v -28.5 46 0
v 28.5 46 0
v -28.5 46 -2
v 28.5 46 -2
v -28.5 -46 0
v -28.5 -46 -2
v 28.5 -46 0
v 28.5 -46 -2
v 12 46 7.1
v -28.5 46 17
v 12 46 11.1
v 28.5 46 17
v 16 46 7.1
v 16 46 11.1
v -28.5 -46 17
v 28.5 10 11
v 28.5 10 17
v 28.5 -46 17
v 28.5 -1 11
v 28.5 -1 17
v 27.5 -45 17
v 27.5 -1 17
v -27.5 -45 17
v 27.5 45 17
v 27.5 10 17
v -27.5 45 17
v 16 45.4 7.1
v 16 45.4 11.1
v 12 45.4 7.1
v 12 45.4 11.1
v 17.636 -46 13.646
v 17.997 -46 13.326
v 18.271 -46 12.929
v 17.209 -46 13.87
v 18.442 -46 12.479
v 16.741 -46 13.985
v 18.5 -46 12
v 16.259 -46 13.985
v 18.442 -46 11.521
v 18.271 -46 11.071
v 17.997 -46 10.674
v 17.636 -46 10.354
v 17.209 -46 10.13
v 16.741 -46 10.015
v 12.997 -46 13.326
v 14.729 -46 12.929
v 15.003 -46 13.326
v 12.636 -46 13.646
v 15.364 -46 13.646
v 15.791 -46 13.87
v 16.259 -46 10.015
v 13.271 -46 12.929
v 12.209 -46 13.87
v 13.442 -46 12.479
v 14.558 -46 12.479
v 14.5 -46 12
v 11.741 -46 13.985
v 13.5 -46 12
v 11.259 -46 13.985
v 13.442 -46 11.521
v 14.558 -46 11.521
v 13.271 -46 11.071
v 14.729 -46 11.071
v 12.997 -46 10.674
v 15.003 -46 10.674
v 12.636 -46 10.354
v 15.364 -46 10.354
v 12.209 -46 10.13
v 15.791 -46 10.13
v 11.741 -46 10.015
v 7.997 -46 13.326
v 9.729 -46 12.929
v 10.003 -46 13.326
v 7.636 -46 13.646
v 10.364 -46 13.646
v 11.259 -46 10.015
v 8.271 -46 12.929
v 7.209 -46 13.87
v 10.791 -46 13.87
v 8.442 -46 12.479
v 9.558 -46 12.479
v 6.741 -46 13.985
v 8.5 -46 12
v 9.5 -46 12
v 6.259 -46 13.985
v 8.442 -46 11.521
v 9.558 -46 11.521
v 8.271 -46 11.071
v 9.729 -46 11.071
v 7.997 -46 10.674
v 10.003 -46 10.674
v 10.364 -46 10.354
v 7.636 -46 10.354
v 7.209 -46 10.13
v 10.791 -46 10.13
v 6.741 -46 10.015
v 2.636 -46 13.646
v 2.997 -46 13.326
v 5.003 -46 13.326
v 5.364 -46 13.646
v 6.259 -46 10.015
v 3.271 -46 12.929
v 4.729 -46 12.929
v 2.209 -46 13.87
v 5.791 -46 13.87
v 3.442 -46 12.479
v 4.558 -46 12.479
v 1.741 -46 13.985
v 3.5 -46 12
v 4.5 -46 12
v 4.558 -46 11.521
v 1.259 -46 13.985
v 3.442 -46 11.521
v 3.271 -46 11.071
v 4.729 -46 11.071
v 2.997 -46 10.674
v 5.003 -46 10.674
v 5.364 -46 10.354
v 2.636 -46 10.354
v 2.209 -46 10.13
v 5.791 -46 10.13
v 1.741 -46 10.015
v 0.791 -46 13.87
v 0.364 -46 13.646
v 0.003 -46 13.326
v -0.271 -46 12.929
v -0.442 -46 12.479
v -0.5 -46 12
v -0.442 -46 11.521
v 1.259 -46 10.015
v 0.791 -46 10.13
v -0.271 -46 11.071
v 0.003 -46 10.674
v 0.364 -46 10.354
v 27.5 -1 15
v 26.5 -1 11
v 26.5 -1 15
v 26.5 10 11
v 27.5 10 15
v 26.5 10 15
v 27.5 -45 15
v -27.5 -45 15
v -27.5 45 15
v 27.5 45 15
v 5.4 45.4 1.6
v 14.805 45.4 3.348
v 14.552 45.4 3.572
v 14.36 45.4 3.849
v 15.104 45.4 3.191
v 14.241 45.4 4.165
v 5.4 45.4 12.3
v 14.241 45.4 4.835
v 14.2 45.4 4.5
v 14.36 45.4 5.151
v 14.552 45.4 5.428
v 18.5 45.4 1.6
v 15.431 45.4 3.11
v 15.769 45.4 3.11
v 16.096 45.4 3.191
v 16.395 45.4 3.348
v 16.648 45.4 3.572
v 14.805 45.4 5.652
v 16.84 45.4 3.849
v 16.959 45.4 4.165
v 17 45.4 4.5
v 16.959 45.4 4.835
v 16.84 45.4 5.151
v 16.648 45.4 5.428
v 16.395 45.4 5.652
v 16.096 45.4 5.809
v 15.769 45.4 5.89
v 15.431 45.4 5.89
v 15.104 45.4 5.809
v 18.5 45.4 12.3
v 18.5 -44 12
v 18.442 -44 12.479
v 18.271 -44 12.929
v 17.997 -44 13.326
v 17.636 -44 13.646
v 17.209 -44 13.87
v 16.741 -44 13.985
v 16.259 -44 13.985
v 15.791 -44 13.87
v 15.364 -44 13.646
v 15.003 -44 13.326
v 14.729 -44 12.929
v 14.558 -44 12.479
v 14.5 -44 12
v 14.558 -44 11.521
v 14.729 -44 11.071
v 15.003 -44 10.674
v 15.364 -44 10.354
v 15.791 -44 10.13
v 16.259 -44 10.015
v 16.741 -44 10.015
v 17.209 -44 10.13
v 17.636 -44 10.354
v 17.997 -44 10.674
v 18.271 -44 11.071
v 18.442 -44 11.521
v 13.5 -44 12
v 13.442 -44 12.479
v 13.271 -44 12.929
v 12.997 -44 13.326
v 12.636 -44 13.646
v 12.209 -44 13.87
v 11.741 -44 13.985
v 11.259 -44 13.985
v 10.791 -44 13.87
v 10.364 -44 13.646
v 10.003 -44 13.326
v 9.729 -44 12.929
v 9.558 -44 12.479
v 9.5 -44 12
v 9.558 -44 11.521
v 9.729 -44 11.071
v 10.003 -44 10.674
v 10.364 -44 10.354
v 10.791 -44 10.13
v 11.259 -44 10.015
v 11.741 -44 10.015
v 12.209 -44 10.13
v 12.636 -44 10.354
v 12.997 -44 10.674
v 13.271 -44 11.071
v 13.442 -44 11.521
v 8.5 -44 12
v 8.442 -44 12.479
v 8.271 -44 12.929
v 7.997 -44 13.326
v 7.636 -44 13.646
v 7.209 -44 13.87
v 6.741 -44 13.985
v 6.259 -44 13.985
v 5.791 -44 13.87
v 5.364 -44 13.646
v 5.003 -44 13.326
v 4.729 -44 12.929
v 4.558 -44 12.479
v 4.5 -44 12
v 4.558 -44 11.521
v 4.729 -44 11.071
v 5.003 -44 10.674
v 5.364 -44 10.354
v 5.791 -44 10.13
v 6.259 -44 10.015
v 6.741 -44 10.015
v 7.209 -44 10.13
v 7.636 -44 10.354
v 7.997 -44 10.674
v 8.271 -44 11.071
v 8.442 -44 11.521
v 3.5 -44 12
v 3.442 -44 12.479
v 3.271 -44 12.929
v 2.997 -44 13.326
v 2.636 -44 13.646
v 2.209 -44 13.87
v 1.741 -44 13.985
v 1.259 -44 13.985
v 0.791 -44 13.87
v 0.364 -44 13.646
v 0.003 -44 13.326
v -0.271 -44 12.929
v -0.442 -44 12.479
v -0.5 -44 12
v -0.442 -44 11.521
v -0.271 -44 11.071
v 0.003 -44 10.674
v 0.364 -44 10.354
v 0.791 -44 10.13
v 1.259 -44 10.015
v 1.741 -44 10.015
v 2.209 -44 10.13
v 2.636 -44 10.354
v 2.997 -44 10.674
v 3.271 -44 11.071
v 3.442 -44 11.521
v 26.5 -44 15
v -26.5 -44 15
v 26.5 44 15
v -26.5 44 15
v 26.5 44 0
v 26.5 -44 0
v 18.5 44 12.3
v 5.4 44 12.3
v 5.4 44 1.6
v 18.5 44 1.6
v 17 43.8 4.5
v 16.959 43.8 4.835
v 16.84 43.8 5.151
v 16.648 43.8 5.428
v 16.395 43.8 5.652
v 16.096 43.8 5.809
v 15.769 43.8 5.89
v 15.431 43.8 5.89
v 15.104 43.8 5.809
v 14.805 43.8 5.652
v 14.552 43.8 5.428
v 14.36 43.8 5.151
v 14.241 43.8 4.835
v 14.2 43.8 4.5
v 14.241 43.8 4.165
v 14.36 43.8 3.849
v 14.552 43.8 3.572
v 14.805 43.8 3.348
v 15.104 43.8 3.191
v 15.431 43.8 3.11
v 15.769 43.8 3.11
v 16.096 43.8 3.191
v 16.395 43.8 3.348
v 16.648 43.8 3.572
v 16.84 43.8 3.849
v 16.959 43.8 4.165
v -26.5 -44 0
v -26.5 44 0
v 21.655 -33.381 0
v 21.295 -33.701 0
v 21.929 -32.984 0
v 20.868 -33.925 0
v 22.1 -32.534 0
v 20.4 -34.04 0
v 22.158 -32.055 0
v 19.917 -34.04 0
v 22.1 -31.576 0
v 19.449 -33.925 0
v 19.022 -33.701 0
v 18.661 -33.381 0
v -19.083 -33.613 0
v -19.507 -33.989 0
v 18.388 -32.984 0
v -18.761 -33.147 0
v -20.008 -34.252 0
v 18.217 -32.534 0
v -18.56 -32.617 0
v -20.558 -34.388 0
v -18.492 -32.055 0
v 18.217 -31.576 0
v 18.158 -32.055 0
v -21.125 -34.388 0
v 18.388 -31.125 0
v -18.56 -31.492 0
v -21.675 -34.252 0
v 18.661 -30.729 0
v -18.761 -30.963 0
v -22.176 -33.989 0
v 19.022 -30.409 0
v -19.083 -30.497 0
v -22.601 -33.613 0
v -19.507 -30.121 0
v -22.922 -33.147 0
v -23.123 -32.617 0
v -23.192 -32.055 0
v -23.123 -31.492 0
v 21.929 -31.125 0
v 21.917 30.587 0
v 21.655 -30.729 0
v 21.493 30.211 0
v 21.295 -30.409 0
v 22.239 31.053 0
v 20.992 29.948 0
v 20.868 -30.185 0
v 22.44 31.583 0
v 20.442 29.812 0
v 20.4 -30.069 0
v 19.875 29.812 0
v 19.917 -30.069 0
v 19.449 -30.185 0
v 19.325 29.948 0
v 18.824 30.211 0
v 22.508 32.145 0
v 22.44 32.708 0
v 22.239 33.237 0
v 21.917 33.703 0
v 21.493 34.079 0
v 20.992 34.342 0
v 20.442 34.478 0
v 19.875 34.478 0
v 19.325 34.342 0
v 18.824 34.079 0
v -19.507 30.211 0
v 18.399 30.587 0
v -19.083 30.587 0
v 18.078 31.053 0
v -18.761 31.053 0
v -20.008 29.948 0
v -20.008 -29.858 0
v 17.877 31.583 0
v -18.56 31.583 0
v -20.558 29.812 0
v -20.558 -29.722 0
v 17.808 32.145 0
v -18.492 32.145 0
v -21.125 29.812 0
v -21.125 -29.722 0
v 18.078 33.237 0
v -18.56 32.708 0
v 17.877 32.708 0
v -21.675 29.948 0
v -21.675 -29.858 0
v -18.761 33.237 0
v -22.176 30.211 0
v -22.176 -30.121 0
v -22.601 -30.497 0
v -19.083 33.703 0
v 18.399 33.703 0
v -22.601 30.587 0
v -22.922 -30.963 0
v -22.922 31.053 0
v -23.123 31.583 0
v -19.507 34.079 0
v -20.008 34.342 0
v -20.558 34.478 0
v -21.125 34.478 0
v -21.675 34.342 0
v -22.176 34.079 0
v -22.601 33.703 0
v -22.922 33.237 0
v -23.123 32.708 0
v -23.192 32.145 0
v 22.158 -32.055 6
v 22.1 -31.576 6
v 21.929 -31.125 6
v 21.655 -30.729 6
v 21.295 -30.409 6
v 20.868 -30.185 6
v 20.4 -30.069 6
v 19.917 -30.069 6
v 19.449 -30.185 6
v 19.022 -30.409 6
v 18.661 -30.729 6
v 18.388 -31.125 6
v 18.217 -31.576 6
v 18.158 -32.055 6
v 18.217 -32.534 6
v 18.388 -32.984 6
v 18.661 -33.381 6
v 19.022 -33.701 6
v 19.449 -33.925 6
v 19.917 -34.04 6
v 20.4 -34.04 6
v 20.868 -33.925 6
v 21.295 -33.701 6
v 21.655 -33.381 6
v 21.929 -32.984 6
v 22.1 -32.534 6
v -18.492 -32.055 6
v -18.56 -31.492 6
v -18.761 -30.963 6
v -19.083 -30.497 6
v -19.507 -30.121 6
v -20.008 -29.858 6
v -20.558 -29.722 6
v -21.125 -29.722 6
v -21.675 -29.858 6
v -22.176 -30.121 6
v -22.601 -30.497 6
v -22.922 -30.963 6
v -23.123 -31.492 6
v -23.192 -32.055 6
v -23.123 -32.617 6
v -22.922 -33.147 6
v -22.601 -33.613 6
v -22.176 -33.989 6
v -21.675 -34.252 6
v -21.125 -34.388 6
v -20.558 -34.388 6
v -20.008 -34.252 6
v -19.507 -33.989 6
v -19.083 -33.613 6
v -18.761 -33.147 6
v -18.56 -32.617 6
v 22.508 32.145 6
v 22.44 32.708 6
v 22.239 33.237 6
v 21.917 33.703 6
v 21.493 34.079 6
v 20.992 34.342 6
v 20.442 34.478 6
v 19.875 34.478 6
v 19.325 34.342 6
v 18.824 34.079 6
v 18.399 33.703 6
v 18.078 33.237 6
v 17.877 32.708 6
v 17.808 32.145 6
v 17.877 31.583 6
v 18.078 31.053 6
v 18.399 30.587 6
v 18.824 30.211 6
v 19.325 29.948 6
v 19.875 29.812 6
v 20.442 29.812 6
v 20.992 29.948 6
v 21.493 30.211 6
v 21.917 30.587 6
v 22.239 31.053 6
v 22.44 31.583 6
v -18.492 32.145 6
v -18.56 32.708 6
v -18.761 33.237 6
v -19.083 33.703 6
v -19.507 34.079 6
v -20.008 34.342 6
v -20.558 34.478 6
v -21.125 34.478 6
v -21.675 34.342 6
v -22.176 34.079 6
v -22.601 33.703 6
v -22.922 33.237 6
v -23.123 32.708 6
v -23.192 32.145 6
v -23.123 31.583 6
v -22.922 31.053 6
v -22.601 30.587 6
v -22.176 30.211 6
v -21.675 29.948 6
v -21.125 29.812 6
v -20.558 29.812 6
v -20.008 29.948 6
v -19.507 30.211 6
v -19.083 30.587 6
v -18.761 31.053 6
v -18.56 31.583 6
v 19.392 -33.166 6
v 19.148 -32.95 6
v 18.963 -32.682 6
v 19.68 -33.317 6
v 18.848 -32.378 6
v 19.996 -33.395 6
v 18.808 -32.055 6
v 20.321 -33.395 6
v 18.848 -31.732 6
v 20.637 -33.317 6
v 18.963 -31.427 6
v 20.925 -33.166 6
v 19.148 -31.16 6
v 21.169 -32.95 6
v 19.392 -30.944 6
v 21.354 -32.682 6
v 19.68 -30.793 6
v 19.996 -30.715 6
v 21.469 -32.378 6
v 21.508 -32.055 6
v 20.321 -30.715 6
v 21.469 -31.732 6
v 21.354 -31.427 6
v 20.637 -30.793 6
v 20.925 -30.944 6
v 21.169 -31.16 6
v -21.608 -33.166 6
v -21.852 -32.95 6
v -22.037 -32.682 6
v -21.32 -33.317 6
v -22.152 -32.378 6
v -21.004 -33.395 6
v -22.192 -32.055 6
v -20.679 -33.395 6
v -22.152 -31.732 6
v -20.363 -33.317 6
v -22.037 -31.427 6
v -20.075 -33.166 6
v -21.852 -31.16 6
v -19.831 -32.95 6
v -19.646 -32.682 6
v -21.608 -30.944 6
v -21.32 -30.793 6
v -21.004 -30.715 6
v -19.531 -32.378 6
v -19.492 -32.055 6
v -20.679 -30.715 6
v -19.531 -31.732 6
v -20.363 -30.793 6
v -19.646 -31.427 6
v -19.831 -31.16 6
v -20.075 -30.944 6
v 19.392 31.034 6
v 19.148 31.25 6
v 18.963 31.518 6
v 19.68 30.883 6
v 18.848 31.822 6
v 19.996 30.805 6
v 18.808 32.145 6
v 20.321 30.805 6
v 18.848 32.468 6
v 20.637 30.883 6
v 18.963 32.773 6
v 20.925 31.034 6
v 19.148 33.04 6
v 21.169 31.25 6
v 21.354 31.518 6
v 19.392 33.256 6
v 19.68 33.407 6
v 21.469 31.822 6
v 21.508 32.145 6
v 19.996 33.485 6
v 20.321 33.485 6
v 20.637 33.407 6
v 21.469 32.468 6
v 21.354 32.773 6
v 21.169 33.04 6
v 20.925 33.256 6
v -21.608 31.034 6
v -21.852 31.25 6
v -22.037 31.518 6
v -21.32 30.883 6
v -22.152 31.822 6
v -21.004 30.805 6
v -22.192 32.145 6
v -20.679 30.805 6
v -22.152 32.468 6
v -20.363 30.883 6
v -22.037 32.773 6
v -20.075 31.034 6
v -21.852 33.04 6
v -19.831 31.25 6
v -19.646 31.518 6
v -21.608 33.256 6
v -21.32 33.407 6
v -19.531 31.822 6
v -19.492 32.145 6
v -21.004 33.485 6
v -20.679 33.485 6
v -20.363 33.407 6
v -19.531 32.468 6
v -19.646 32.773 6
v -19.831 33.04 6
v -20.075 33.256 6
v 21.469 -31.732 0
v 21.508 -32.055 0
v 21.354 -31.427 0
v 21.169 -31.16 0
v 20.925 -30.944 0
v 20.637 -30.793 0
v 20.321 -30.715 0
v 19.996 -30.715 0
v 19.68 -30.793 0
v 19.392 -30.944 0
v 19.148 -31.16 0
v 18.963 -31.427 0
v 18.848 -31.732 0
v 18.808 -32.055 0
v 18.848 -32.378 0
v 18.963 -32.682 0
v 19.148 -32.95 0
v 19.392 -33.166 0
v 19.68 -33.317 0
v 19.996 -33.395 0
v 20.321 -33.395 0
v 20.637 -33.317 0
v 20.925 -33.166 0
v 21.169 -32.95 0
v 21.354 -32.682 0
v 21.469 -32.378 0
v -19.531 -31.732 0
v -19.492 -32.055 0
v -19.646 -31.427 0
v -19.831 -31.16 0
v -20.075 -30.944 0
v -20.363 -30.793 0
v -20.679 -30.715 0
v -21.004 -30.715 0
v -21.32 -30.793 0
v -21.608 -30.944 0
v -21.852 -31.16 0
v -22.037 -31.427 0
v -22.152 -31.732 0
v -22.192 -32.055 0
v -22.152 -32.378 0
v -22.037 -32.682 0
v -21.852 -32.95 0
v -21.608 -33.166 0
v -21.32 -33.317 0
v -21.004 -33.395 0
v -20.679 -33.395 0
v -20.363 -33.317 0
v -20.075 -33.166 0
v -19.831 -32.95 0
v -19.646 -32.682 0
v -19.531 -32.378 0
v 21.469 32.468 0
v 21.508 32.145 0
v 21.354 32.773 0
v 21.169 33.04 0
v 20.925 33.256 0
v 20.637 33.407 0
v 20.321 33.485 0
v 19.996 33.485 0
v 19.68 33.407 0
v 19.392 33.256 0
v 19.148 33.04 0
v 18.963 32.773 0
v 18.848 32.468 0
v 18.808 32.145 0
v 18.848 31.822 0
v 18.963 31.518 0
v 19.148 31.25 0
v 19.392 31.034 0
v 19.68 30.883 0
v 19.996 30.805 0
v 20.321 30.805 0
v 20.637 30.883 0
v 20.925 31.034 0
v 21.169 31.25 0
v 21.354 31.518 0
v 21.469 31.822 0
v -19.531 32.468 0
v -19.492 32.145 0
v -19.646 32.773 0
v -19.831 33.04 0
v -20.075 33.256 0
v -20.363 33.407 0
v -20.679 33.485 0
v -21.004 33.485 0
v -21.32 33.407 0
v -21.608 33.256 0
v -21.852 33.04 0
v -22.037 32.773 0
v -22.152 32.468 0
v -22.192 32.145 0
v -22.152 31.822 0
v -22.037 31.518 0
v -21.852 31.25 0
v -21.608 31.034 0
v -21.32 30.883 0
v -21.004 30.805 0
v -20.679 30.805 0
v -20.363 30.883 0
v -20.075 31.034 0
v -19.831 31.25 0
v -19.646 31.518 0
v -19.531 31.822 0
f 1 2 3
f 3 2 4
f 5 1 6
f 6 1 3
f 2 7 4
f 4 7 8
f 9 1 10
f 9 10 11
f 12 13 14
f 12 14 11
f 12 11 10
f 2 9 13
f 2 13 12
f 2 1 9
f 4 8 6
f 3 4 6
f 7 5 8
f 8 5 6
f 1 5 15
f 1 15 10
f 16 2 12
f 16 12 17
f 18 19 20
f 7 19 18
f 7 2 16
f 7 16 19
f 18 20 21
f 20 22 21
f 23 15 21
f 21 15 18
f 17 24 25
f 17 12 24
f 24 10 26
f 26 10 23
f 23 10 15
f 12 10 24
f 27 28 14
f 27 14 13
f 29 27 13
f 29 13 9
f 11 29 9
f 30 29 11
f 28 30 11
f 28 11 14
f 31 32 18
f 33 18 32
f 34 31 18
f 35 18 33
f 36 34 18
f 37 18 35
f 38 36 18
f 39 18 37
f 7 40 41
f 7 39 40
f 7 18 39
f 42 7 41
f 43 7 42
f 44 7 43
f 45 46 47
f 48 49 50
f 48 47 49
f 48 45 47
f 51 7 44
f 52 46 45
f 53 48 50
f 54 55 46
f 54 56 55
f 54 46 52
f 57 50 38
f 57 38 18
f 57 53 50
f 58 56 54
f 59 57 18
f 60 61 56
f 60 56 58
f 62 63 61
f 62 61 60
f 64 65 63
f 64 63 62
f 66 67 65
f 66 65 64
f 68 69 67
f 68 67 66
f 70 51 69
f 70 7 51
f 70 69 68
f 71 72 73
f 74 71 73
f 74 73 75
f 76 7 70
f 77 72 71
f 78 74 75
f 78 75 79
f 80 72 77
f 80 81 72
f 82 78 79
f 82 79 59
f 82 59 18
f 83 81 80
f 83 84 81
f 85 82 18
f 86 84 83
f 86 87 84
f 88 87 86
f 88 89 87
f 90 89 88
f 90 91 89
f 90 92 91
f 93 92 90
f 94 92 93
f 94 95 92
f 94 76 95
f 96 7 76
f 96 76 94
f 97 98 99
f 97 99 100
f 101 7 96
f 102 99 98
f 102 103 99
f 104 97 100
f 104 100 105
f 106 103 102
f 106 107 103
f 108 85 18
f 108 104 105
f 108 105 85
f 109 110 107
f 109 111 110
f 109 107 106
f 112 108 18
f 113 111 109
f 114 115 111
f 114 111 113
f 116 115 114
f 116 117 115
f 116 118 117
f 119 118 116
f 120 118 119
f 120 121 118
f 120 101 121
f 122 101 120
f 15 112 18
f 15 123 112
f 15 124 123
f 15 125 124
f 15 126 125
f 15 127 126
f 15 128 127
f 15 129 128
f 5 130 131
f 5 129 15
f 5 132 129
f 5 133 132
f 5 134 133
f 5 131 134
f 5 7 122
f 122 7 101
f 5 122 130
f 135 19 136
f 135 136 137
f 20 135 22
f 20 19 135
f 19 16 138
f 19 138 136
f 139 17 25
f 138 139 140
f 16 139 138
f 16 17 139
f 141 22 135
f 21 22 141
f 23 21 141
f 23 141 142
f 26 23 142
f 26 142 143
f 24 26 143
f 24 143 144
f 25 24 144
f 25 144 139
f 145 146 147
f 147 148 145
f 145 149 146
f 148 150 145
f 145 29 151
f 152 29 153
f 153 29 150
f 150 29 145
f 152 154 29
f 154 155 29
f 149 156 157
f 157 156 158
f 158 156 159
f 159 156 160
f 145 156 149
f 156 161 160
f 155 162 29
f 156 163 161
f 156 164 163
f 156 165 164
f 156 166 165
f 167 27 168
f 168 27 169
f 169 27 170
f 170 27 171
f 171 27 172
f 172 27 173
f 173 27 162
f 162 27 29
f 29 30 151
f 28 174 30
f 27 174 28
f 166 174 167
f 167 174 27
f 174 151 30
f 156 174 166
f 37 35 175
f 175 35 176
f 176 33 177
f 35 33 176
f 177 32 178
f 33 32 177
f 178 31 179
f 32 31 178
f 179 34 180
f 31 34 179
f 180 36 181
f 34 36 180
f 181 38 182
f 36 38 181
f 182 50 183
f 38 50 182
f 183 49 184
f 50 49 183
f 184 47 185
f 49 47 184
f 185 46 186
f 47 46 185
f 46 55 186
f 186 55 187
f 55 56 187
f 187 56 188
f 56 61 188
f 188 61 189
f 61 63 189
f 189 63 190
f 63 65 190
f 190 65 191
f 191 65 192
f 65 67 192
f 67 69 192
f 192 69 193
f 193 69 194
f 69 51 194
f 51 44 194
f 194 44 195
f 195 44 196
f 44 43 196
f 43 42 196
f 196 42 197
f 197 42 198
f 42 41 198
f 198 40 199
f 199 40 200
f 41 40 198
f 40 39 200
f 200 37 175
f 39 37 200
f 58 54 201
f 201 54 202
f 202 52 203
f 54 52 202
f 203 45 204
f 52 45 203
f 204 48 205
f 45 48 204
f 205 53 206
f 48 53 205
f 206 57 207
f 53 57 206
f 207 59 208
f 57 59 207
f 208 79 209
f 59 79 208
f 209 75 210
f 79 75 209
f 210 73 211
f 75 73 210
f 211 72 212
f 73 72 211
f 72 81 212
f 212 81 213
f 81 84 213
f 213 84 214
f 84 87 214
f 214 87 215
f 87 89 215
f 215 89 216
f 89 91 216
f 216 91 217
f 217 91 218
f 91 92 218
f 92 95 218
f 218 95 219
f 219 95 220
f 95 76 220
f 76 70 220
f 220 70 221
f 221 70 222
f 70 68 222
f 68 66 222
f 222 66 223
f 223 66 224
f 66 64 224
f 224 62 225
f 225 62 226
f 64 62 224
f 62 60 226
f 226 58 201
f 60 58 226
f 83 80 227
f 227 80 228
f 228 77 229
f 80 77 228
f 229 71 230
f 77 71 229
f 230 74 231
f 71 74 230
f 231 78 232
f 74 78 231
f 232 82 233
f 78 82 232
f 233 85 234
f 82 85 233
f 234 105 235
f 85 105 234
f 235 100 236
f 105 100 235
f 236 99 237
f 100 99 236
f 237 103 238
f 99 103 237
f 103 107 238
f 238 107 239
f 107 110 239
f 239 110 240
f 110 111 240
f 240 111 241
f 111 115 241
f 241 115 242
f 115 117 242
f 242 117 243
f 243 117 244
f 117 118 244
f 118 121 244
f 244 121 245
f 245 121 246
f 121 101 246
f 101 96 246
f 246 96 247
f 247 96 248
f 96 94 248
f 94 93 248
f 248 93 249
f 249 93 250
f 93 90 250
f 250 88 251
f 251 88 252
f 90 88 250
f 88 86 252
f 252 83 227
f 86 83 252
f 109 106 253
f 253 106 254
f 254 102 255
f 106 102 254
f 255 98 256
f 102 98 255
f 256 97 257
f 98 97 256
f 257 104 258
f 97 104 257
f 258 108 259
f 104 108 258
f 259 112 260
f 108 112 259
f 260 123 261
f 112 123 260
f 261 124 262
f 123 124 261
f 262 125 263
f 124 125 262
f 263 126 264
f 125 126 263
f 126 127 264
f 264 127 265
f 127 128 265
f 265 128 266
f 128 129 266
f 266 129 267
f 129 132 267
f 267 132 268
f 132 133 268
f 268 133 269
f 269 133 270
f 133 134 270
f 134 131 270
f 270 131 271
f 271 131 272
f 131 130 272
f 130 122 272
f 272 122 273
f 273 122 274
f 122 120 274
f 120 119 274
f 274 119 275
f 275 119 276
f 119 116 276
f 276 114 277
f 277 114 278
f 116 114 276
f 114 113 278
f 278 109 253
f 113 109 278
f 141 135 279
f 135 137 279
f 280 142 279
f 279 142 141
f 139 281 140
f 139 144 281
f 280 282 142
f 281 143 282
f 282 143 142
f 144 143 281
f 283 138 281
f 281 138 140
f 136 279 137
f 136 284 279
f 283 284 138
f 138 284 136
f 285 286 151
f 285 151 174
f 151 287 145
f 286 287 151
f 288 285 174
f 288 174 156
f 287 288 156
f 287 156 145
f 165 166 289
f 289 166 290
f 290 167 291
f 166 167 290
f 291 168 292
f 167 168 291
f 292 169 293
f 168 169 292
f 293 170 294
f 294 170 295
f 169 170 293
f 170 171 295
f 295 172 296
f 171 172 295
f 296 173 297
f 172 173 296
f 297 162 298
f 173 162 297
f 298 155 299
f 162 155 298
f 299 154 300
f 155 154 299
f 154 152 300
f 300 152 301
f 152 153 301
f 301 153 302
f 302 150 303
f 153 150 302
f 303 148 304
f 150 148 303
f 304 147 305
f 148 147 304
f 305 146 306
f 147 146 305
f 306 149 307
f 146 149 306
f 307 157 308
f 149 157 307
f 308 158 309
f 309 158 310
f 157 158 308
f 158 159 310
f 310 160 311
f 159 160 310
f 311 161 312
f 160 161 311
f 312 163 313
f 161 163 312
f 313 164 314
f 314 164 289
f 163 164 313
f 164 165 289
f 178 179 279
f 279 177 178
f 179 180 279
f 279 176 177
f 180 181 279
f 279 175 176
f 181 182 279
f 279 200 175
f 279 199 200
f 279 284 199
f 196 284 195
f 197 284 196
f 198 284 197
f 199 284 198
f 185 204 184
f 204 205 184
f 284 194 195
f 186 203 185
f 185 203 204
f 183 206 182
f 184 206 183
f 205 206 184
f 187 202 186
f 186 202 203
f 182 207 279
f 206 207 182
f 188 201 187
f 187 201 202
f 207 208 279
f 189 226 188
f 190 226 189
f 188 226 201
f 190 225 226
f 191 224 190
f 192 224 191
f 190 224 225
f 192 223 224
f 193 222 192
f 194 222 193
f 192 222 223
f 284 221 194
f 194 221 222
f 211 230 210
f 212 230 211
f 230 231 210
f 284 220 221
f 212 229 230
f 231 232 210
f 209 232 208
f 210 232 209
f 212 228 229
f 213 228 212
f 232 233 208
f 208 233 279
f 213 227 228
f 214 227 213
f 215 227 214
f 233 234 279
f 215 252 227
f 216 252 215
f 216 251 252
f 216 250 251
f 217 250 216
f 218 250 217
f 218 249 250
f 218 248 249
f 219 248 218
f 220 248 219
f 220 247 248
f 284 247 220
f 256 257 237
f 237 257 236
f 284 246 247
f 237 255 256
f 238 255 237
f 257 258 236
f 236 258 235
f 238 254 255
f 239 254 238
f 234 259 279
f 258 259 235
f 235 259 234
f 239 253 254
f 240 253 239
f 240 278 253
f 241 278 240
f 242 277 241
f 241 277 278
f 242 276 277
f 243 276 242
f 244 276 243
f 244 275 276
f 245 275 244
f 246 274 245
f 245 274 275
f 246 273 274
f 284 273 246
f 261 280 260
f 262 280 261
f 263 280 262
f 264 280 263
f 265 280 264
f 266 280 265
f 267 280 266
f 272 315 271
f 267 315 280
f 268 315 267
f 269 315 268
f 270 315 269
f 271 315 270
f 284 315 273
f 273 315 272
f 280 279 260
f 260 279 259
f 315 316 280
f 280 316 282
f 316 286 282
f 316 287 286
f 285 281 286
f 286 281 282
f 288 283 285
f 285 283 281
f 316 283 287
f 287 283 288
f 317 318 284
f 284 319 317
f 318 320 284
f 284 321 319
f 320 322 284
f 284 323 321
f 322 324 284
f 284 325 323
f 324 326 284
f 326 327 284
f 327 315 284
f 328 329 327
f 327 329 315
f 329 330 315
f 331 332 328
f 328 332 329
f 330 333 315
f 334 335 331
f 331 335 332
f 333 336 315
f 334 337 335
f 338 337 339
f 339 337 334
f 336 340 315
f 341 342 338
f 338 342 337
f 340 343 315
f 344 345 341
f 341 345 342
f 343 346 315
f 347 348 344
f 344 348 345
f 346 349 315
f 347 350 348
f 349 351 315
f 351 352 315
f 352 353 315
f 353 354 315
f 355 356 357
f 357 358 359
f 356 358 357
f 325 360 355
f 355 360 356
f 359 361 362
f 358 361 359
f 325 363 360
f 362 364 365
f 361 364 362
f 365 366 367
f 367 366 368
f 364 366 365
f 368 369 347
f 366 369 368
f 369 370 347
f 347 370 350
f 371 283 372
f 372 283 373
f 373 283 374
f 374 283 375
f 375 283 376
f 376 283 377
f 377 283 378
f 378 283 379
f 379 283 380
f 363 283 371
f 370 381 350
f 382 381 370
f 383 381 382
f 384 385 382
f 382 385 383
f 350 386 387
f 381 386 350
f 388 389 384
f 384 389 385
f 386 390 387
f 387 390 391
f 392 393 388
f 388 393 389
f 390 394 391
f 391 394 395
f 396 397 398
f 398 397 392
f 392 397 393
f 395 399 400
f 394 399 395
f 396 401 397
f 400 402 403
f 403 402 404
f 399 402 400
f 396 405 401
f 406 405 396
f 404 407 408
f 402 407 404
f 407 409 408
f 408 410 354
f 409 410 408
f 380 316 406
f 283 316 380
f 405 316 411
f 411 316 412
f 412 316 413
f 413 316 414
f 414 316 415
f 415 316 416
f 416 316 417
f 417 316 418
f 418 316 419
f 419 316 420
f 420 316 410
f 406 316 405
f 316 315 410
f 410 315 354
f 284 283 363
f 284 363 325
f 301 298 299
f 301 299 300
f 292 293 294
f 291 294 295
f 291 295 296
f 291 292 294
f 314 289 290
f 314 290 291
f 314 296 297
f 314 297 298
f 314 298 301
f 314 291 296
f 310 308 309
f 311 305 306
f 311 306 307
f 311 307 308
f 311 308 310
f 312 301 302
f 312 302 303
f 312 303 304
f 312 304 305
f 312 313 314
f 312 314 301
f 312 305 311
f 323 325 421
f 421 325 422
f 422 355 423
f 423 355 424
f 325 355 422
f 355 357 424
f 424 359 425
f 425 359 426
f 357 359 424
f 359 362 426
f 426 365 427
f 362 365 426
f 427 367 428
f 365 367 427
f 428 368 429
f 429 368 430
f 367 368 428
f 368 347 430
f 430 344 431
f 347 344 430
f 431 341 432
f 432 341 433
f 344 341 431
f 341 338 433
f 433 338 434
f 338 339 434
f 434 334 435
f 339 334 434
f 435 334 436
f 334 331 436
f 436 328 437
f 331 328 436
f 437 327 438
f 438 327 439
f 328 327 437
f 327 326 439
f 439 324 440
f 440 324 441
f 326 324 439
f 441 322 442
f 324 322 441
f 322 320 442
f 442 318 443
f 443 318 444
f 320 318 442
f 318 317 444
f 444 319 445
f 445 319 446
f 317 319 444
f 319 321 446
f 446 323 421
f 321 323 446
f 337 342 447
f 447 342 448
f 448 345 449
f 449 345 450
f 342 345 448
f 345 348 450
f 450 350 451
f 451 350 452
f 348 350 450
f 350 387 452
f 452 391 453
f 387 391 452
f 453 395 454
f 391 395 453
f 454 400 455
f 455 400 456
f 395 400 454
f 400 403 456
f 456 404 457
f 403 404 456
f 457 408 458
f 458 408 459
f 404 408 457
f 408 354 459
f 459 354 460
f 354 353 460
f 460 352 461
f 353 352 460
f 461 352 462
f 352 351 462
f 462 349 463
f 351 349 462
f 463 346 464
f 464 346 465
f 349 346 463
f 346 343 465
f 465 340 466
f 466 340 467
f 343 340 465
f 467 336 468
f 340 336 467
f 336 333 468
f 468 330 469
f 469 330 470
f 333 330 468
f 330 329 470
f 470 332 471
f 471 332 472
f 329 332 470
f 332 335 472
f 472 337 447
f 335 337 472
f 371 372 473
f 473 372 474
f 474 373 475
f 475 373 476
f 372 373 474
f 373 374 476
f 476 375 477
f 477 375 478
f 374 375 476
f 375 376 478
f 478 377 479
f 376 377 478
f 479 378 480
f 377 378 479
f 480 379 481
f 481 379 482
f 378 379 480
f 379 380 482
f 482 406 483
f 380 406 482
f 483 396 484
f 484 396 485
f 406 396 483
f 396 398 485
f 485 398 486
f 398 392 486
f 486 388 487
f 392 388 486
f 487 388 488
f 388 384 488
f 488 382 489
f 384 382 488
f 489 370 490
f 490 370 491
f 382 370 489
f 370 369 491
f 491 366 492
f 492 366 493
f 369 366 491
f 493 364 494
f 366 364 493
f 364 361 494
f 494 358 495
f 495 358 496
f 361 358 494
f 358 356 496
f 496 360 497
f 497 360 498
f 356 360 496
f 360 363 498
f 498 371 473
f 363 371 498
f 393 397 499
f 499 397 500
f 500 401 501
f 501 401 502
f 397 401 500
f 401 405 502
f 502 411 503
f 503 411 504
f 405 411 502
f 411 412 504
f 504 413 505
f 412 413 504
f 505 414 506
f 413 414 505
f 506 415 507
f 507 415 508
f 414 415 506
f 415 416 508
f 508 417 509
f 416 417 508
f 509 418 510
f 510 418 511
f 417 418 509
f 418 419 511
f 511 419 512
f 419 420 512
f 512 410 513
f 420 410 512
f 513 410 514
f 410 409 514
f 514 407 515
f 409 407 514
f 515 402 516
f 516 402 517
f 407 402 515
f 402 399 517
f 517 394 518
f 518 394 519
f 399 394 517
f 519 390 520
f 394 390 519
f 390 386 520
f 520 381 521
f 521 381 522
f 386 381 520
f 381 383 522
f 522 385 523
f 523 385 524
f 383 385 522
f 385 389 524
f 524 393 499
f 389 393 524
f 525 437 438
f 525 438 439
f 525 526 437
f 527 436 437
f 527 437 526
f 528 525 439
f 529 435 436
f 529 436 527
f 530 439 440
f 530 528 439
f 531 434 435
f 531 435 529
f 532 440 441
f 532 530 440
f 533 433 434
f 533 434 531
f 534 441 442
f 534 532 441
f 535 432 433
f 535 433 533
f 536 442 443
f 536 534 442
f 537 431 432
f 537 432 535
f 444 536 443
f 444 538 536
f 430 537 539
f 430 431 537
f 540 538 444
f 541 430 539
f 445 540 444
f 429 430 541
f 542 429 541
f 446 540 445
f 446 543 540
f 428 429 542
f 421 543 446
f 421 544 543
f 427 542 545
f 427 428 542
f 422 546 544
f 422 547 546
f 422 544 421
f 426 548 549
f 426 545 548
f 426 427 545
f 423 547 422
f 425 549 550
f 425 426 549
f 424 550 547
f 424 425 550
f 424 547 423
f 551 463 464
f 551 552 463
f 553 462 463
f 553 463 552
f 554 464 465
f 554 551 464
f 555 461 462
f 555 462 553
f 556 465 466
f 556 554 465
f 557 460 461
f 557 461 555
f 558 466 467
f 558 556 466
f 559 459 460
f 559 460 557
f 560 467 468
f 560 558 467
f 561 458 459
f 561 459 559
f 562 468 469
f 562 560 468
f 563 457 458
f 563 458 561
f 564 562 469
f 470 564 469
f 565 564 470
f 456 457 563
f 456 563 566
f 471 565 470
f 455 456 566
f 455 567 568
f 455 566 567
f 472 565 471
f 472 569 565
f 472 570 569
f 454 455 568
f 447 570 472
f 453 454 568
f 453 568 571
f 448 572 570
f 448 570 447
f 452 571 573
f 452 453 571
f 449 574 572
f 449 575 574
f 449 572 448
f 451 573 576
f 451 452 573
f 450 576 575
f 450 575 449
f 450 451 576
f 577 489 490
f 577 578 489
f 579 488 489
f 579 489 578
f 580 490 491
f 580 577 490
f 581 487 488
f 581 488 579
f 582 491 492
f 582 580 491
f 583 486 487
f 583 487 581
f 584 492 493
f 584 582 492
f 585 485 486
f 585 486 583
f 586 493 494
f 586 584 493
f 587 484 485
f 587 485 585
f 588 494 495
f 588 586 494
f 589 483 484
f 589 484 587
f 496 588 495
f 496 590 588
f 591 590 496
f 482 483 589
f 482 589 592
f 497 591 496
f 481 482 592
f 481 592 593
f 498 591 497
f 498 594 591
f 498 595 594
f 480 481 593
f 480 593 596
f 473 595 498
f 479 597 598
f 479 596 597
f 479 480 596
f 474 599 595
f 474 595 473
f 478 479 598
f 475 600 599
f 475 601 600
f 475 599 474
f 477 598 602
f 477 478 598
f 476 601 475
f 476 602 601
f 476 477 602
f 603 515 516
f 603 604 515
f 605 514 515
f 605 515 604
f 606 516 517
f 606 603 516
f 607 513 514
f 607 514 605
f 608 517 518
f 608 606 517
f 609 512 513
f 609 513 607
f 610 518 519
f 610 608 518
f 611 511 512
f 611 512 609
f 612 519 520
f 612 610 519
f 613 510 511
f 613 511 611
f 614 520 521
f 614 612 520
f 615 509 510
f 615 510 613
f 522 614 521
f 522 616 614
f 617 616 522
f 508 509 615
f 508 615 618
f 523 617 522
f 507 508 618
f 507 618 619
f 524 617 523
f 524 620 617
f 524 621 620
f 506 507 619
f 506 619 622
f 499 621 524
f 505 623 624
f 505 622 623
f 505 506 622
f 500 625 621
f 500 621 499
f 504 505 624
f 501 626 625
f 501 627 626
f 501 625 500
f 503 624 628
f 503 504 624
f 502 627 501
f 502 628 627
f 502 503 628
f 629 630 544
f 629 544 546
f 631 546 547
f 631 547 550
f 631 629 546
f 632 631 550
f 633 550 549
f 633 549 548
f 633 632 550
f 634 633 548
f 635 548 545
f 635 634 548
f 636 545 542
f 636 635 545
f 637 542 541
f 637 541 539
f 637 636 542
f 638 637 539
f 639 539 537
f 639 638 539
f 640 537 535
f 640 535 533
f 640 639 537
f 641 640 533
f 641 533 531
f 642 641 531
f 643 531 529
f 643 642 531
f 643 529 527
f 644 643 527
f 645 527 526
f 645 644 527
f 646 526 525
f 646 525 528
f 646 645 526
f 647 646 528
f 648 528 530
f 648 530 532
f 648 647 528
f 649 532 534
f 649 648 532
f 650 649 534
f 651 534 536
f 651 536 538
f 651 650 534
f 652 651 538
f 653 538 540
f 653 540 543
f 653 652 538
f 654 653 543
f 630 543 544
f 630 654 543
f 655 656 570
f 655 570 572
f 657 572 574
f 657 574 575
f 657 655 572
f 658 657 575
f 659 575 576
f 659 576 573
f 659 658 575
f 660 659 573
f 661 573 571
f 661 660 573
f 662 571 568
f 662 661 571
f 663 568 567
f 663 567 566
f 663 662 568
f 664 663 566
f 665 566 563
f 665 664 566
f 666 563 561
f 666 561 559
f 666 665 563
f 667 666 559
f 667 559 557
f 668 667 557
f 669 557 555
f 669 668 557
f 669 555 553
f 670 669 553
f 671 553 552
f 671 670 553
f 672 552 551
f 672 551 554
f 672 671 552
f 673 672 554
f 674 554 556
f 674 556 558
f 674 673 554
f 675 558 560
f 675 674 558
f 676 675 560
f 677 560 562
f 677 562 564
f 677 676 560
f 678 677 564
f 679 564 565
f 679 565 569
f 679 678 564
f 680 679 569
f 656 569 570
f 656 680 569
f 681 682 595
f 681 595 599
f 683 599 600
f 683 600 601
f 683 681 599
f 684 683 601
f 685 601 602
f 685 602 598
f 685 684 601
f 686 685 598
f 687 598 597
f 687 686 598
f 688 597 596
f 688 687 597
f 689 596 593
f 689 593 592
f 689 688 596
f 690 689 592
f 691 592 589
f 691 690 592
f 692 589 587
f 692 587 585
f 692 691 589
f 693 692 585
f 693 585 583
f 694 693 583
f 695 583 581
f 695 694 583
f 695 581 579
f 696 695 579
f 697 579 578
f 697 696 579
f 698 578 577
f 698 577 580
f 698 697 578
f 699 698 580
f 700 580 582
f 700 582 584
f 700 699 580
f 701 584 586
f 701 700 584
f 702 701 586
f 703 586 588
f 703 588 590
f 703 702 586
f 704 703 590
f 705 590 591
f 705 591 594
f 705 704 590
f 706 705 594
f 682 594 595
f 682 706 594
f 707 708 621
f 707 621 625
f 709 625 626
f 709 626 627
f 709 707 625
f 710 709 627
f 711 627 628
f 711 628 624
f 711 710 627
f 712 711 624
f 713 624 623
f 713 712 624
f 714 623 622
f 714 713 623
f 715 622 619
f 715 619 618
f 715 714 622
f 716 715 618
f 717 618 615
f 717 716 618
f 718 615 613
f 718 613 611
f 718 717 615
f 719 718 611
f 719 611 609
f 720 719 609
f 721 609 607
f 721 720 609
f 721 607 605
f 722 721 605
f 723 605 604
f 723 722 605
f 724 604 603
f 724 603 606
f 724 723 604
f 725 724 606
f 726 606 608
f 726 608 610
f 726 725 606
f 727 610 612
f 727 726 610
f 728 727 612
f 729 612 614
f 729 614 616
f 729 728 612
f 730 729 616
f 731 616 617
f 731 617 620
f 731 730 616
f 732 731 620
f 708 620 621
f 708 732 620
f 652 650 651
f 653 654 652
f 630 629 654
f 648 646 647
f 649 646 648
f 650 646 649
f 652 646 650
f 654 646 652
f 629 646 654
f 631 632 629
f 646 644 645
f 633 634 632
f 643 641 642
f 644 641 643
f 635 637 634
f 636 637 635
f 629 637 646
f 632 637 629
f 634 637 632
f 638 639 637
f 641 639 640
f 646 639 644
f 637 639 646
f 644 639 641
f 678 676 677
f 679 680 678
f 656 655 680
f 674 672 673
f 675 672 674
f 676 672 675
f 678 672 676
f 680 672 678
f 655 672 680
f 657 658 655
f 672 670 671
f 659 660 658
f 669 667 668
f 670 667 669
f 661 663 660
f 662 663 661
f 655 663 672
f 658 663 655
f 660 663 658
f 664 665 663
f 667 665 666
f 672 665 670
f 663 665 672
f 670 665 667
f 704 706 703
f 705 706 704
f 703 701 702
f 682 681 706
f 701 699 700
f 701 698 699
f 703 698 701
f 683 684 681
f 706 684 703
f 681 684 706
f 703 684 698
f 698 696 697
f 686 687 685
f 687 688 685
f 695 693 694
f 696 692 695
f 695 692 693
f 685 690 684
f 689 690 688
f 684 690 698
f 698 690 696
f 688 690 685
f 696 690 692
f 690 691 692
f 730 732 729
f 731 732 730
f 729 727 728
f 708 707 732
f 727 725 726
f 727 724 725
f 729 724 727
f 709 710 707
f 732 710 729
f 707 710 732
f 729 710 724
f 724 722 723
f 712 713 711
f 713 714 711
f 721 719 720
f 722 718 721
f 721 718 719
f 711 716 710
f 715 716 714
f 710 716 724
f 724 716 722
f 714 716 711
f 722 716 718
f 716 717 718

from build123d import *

# Parameters (mm, degrees)
SKETCH_W        = 57
SKETCH_H        = 92
PAD_DEPTH       = 2
SKETCH001_W     = 57
SKETCH001_H     = 92
SKETCH001_W_2   = 53
SKETCH001_H_2   = 88
PAD001_DEPTH    = 17
SKETCH002_R     = 2.35
SKETCH002_R_2   = 1.35
SKETCH002_R_3   = 2
PAD002_DEPTH    = 6
SKETCH003_W     = 55
SKETCH003_H     = 90
POCKET_DEPTH    = 2
SKETCH004_W     = 13.1
SKETCH004_H     = 10.7
POCKET001_DEPTH = 1.4
SKETCH005_R     = 1.4
PAD003_DEPTH    = 1.6
SKETCH006_W     = 4
SKETCH006_H     = 4
POCKET002_DEPTH = 0.6
SKETCH007_W     = 11
SKETCH007_H     = 6
POCKET003_DEPTH = 2
SKETCH008_R     = 2
POCKET004_DEPTH = 5


with BuildPart() as part:
    # Sketch → Pad (new body)
    with BuildSketch(Plane.XY):
        Rectangle(SKETCH_W, SKETCH_H)
    extrude(amount=-PAD_DEPTH)

    # Sketch001 (on Face5 of Pad) → Pad001 (join)
    with BuildSketch(Plane.XY):
        Rectangle(SKETCH001_W, SKETCH001_H)
        Rectangle(SKETCH001_W_2, SKETCH001_H_2, mode=Mode.SUBTRACT)
    extrude(amount=PAD001_DEPTH)

    # Sketch002 (on Face15 of Pad001) → Pad002 (join)
    with BuildSketch(Plane.XY):
        with Locations((-20.841524, 32.145128)):
            Circle(SKETCH002_R)
        with Locations((-20.841524, 32.145128)):
            Circle(SKETCH002_R_2, mode=Mode.SUBTRACT)
        with Locations((20.158476, 32.145128)):
            Circle(SKETCH002_R)
        with Locations((20.158476, 32.145128)):
            Circle(SKETCH002_R_2, mode=Mode.SUBTRACT)
        with Locations((20.158476, -32.054872)):
            Circle(SKETCH002_R_3)
        with Locations((20.158476, -32.054872)):
            Circle(SKETCH002_R_2, mode=Mode.SUBTRACT)
        with Locations((-20.841524, -32.054872)):
            Circle(SKETCH002_R)
        with Locations((-20.841524, -32.054872)):
            Circle(SKETCH002_R_2, mode=Mode.SUBTRACT)
    extrude(amount=PAD002_DEPTH)

    # Sketch003 (on Face9 of Pad002) → Pocket (cut)
    with BuildSketch(Plane.XY.offset(17)):
        Rectangle(SKETCH003_W, SKETCH003_H)
    extrude(amount=-POCKET_DEPTH, mode=Mode.SUBTRACT)

    # Sketch004 (on Face16 of Pocket) → Pocket001 (cut)
    with BuildSketch(Plane.XZ.offset(-44)):
        with Locations((11.95, 6.95)):
            Rectangle(SKETCH004_W, SKETCH004_H)
    extrude(amount=-POCKET001_DEPTH, mode=Mode.SUBTRACT)

    # Sketch005 (on Face29 of Pocket001) → Pad003 (join)
    with BuildSketch(Plane.XZ.offset(-45.4)):
        with Locations((15.6, 4.5)):
            Circle(SKETCH005_R)
    extrude(amount=PAD003_DEPTH)

    # Sketch006 (on Face29 of Pad003) → Pocket002 (cut)
    with BuildSketch(Plane.XZ.offset(-45.4)):
        with Locations((14, 9.1)):
            Rectangle(SKETCH006_W, SKETCH006_H)
    extrude(amount=-POCKET002_DEPTH, mode=Mode.SUBTRACT)

    # Sketch007 (on Face8 of Pad003) → Pocket003 (cut)
    with BuildSketch(Plane.YZ.offset(28.5)):
        with Locations((4.5, 14)):
            Rectangle(SKETCH007_W, SKETCH007_H)
    extrude(amount=-POCKET003_DEPTH, mode=Mode.SUBTRACT)

    # Sketch008 (on Face14 of Pocket003) → Pocket004 (cut)
    with BuildSketch(Plane.XZ.offset(46)):
        with Locations((6.5, 12)):
            Circle(SKETCH008_R)
        with Locations((11.5, 12)):
            Circle(SKETCH008_R)
        with Locations((16.5, 12)):
            Circle(SKETCH008_R)
        with Locations((1.5, 12)):
            Circle(SKETCH008_R)
    extrude(amount=-POCKET004_DEPTH, mode=Mode.SUBTRACT)


solid = part.part
